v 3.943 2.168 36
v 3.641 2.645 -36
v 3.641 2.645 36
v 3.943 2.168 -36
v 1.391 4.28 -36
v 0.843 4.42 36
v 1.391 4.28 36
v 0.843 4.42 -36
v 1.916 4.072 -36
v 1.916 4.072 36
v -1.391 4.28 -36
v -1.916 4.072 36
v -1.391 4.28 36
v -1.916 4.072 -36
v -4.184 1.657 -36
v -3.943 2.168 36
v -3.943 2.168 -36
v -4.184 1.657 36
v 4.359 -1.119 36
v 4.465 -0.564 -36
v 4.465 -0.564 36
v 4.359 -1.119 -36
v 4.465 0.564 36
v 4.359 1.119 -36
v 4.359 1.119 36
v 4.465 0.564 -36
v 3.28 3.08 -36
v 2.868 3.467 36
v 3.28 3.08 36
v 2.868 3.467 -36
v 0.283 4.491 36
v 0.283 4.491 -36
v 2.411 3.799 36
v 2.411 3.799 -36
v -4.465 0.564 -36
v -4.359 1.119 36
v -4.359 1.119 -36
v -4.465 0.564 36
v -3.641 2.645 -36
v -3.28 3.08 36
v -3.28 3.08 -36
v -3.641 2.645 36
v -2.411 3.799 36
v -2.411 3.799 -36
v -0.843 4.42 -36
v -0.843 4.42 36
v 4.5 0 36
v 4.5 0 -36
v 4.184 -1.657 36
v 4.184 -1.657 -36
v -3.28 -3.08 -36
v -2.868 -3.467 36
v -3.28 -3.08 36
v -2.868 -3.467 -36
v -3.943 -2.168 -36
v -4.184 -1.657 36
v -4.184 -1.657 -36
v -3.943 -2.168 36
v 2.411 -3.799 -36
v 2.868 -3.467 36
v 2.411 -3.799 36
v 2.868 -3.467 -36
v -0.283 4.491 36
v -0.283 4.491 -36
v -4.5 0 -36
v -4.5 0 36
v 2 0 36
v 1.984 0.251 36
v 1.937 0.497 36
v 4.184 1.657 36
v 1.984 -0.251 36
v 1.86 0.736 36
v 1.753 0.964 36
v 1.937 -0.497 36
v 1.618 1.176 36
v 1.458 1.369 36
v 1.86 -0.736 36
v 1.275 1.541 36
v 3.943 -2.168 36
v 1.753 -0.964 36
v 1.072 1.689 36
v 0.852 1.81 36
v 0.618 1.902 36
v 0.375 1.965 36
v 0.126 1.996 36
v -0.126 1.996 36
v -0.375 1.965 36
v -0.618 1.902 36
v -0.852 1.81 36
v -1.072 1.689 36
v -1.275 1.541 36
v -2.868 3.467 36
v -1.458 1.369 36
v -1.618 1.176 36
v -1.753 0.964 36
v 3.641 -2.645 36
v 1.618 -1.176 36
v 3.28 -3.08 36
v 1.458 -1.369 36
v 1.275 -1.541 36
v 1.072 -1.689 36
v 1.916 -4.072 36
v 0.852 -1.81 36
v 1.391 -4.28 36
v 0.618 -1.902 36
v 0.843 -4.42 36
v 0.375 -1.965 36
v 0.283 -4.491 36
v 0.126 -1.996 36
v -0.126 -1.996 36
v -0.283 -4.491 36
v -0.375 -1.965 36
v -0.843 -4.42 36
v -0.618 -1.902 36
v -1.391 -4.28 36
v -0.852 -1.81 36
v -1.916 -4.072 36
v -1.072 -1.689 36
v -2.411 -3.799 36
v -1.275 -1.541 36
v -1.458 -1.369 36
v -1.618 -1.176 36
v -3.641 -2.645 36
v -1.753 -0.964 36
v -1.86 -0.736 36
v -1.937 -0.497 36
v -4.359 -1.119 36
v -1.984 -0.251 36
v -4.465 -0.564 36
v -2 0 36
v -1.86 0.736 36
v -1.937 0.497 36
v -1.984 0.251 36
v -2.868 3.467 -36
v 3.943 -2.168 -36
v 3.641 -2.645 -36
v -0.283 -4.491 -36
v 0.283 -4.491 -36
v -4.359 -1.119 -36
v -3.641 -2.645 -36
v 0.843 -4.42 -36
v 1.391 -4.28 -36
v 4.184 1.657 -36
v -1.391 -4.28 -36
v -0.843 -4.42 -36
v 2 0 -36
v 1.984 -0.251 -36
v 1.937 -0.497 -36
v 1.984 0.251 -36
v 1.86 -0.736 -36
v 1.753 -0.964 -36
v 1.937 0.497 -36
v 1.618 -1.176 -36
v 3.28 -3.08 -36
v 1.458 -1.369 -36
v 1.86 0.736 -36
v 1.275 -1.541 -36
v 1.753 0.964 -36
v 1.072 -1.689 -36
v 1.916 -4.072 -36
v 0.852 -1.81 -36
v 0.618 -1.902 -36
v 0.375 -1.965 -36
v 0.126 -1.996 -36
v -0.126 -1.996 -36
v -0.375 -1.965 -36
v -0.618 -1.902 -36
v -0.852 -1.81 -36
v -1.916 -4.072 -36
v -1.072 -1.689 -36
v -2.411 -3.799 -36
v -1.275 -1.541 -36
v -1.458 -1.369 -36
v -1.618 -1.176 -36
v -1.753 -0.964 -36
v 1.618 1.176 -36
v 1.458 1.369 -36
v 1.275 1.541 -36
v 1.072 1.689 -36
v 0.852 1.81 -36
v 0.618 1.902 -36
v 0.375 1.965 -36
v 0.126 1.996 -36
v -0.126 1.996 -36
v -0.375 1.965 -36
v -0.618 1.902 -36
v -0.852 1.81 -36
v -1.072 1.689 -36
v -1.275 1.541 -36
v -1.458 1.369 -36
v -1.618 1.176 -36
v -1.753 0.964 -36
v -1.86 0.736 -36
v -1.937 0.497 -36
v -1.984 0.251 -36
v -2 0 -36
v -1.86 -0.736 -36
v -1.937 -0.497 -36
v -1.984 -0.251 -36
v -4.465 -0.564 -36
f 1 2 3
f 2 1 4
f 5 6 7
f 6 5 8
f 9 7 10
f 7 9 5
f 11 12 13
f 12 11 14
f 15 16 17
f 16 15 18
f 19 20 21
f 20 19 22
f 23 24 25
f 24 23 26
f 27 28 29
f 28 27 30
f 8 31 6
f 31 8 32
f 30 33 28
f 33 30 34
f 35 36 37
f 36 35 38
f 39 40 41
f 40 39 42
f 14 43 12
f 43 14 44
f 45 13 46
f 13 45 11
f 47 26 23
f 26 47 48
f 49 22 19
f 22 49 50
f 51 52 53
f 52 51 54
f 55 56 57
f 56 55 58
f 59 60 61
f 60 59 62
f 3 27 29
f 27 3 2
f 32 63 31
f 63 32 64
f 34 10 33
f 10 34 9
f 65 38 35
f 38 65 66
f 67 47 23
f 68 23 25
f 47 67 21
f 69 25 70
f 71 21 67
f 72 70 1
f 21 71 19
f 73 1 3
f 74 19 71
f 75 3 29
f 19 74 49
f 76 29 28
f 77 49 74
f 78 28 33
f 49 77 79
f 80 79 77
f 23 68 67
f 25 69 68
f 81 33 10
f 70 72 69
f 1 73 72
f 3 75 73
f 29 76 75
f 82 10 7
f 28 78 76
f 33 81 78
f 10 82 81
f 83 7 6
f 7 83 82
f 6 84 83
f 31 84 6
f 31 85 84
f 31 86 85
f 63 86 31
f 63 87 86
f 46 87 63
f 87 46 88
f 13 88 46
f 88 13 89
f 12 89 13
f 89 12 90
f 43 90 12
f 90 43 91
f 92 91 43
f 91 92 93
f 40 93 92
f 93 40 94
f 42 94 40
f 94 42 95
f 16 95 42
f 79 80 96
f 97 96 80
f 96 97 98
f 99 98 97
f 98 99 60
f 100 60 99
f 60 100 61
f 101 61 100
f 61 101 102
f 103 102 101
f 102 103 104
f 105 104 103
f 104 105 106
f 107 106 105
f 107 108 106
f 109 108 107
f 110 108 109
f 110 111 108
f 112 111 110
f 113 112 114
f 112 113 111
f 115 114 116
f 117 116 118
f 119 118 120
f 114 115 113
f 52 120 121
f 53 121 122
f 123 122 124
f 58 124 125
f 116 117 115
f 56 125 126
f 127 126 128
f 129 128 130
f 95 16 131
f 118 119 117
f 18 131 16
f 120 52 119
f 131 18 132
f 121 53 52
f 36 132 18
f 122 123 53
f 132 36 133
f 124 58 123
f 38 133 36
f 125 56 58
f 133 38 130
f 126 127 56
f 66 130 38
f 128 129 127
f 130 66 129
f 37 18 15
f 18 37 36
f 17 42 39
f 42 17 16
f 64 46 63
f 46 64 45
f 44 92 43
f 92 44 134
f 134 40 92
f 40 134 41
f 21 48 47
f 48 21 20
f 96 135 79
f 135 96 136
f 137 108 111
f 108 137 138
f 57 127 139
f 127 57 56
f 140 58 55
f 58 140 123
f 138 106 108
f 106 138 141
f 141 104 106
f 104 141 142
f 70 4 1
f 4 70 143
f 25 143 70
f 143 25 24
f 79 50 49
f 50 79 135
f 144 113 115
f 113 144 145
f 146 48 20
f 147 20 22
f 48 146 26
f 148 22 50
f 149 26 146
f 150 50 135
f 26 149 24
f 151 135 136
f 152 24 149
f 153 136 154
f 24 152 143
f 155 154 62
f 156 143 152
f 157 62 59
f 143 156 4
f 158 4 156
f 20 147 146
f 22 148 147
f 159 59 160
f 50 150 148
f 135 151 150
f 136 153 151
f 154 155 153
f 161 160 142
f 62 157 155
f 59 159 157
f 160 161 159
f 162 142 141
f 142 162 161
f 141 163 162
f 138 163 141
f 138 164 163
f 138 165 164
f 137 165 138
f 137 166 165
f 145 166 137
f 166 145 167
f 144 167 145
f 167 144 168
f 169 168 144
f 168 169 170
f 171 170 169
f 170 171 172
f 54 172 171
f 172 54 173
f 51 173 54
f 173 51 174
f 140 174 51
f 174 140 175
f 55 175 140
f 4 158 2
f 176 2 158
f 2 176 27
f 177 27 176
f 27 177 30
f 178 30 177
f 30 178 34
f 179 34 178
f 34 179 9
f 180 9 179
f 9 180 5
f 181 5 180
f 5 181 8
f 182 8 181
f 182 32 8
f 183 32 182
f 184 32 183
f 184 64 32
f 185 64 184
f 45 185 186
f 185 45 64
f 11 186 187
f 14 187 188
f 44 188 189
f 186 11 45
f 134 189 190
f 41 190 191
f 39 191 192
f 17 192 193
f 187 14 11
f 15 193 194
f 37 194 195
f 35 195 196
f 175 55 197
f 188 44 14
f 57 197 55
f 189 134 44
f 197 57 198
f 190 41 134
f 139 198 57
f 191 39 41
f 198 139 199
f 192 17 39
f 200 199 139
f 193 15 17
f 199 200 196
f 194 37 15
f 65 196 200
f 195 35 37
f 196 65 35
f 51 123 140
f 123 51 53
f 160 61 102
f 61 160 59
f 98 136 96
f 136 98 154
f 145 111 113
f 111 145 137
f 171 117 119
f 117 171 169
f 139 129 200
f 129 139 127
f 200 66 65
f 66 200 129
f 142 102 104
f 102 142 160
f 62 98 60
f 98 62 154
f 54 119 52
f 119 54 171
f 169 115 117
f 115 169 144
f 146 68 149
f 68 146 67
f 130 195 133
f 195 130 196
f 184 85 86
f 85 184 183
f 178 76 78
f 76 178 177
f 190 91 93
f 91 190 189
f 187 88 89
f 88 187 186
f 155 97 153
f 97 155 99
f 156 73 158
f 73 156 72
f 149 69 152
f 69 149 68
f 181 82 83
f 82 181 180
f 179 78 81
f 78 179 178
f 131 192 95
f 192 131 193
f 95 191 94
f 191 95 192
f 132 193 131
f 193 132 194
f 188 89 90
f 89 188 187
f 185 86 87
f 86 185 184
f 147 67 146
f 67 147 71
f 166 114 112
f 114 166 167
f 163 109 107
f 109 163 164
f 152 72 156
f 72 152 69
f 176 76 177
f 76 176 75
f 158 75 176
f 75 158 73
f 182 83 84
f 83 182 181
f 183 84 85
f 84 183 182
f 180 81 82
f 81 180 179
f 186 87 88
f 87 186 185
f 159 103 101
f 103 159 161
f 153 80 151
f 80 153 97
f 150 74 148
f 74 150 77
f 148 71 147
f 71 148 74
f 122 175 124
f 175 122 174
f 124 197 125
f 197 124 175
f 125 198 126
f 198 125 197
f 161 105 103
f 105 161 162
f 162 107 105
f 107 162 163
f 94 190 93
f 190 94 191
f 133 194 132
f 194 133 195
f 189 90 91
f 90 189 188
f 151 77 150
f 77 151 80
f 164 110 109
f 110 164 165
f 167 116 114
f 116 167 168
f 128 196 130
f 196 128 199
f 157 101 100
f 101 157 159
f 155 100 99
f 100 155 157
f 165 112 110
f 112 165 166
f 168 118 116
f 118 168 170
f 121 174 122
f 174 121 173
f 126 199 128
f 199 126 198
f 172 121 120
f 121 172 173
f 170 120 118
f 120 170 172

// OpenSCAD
$fn = 50;


difference() {
	union() {
		translate(v = [0, 0, -36.0000000000]) {
			cylinder(h = 72, r = 4.5000000000);
		}
	}
	union() {
		translate(v = [0, 0, -100.0000000000]) {
			cylinder(h = 200, r = 2);
		}
	}
}
